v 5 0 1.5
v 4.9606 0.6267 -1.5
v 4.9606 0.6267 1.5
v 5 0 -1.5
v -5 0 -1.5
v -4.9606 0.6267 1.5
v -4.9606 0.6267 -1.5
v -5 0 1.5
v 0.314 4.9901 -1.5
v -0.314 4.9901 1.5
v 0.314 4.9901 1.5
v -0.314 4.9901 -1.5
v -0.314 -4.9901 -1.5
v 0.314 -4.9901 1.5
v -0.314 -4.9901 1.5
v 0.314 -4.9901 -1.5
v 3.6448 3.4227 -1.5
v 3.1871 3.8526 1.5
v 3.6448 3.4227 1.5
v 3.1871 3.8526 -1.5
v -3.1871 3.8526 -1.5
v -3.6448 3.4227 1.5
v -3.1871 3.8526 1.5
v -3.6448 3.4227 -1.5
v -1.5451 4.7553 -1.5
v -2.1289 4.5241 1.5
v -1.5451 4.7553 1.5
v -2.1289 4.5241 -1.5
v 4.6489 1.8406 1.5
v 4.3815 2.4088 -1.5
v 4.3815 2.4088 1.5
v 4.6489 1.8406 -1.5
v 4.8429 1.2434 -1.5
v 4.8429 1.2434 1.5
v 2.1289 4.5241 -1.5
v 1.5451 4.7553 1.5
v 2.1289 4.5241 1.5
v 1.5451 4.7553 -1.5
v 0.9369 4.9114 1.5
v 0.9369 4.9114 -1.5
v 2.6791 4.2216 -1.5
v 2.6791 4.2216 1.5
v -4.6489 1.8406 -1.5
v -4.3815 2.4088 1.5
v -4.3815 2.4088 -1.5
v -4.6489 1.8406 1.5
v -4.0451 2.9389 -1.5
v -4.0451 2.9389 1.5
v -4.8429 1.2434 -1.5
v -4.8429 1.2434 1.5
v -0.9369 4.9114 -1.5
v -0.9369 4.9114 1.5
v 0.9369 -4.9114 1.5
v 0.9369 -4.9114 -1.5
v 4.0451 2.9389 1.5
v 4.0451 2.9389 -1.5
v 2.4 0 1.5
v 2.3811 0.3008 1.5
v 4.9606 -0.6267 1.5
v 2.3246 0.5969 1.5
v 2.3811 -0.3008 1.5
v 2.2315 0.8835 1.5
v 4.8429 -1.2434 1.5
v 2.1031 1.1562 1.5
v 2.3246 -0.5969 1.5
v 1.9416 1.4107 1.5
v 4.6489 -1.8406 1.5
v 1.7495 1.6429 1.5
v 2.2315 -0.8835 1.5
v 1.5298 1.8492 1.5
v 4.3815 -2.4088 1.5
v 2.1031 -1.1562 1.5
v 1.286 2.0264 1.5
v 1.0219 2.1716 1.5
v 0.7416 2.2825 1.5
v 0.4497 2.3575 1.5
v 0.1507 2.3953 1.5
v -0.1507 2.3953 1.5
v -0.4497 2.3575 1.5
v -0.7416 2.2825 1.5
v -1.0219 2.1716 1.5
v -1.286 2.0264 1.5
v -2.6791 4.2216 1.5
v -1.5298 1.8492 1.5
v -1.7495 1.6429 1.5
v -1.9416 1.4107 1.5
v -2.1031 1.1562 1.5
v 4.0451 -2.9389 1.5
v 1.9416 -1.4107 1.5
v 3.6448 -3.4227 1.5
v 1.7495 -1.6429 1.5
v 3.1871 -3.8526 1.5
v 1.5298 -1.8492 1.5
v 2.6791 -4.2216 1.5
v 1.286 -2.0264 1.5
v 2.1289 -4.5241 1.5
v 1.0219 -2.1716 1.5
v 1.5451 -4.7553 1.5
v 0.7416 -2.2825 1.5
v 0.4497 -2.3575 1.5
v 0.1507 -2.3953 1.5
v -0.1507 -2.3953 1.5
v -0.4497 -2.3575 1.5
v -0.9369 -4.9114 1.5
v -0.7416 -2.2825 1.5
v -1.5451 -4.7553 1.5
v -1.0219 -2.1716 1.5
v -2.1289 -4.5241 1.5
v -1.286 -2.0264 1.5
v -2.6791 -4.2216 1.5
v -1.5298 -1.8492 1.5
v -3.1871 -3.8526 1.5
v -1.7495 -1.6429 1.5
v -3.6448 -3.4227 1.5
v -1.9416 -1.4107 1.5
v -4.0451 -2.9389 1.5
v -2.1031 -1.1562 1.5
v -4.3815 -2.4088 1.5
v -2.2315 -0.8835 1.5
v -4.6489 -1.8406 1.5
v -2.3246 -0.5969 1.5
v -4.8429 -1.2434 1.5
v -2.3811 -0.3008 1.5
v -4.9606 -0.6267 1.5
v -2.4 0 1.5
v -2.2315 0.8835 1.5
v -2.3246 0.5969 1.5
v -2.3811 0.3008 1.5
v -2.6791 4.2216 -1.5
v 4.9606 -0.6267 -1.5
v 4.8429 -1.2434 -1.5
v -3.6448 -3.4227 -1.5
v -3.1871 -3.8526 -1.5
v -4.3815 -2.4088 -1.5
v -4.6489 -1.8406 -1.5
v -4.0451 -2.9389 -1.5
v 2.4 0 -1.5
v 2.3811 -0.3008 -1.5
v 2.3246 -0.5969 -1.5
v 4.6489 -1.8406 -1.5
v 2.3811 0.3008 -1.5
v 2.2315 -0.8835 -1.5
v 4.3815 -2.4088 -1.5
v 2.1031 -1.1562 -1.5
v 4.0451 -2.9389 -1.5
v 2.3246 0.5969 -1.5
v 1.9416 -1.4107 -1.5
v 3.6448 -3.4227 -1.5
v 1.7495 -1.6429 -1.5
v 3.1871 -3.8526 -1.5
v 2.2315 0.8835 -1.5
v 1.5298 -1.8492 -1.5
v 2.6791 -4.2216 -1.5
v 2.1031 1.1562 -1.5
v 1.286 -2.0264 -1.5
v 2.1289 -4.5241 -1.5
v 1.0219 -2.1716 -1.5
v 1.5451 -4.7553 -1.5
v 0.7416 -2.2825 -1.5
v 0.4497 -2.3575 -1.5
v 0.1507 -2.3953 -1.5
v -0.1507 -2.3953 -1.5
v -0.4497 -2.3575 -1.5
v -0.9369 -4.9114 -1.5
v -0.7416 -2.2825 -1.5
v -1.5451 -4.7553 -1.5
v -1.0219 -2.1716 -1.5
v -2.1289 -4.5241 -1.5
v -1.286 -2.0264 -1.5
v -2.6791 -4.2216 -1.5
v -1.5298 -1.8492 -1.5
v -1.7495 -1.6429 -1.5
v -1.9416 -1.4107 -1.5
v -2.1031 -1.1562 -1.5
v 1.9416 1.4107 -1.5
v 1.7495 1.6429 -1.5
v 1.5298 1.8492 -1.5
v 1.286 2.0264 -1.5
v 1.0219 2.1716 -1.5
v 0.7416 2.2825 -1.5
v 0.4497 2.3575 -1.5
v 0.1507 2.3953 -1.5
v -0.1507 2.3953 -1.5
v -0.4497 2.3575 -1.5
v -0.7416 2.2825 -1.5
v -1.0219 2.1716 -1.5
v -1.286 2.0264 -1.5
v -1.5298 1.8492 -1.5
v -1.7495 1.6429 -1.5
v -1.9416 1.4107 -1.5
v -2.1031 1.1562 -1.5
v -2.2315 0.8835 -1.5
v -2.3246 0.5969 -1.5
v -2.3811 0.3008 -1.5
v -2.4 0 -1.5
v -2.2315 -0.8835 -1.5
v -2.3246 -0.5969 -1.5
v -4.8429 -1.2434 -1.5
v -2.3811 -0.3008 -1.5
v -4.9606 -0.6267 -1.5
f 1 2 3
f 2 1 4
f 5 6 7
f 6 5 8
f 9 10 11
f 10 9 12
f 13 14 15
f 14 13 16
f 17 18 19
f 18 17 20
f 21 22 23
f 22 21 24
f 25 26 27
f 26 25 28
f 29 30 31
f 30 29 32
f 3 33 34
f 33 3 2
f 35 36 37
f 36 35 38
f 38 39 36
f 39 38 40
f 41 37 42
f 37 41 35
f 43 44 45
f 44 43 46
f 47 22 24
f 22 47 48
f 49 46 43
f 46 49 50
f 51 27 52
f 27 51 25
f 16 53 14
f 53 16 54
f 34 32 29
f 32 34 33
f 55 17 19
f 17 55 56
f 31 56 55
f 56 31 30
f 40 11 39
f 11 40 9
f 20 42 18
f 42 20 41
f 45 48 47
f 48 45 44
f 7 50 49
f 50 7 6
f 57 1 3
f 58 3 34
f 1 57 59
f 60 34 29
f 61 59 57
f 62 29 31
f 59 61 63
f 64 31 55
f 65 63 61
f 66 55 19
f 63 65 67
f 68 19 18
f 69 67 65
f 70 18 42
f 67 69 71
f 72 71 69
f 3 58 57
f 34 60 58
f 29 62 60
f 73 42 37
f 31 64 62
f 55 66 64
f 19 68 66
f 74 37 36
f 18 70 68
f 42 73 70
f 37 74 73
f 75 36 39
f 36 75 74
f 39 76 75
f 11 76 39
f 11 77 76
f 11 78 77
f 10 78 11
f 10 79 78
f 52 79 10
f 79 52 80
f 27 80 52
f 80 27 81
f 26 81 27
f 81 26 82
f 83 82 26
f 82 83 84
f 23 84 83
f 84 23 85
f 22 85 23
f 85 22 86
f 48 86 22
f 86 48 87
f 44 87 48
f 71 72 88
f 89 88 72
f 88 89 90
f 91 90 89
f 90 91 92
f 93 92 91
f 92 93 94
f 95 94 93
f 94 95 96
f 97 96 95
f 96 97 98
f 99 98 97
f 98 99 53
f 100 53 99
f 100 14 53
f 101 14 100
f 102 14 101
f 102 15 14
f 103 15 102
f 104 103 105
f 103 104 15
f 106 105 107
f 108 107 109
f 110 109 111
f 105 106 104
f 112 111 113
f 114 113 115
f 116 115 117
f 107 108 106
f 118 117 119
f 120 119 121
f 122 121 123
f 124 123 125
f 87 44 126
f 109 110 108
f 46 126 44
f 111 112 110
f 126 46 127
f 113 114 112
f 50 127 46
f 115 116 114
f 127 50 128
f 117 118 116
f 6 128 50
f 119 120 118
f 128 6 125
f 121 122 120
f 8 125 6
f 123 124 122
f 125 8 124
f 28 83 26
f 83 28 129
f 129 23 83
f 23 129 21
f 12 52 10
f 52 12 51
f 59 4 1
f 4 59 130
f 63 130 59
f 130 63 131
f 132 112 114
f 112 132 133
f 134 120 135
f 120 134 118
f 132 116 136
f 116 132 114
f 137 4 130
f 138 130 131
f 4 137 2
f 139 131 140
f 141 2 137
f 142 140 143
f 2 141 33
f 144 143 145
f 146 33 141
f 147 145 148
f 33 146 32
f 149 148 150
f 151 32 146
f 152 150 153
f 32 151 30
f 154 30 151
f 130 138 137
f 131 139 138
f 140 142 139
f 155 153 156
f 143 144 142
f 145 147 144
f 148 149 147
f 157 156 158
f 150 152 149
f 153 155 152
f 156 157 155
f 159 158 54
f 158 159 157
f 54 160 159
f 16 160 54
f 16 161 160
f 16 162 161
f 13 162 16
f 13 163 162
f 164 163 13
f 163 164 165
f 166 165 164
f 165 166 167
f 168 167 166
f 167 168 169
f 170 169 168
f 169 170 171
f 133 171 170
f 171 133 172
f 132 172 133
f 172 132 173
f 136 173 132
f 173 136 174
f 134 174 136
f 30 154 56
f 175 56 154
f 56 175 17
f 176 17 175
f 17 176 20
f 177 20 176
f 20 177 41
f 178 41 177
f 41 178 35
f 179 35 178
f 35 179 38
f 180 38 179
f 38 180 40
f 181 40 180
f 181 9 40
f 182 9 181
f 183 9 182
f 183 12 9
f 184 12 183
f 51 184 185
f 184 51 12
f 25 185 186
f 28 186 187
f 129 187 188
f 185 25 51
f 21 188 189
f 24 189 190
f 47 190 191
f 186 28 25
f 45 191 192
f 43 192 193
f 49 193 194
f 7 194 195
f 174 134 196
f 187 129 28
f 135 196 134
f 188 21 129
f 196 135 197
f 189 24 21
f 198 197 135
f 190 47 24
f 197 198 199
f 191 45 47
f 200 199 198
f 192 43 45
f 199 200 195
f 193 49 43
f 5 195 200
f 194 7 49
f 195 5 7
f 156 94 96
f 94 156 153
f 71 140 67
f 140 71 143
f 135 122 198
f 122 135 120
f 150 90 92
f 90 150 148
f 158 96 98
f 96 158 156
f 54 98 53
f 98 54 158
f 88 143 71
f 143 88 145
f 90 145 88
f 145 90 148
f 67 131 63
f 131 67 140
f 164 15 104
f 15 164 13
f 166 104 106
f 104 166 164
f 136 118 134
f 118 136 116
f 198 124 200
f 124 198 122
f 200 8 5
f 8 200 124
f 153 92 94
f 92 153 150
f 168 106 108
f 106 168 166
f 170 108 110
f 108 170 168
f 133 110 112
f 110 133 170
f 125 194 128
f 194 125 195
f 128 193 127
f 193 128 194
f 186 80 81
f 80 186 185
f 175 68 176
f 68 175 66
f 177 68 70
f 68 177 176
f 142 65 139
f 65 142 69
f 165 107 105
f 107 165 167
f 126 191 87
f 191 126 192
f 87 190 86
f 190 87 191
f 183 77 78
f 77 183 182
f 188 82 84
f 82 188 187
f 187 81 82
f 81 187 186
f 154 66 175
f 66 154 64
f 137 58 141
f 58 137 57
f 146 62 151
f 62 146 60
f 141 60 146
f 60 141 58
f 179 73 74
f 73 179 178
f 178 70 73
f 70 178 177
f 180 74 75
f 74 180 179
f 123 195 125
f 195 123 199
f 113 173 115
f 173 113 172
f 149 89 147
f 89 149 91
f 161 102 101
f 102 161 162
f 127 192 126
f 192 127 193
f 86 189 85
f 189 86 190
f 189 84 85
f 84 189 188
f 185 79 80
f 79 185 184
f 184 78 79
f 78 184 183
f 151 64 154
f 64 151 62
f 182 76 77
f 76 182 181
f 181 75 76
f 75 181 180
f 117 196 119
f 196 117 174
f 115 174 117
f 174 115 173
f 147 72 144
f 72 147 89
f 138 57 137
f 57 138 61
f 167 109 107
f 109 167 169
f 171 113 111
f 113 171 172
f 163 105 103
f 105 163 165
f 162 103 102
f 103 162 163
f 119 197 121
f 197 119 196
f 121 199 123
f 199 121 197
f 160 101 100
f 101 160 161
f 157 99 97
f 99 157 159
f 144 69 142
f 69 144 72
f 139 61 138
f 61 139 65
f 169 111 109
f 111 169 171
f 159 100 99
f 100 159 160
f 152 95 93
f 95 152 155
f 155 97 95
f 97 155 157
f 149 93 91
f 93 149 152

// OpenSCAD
$fn = 50;


difference() {
	union() {
		translate(v = [0, 0, -1.5000000000]) {
			rotate(a = [0, 0, 0]) {
				cylinder(h = 3, r = 5.0000000000);
			}
		}
		translate(v = [0, 0, -1.5000000000]) {
			rotate(a = [0, 0, 0]) {
				cylinder(h = 3, r = 3.0000000000);
			}
		}
	}
	union() {
		translate(v = [0, 0, -125.0000000000]) {
			rotate(a = [0, 0, 0]) {
				cylinder(h = 250, r = 1.5000000000);
			}
		}
		#translate(v = [0, 0, 1.5000000000]) {
			rotate(a = [0, 180, 0]) {
				cylinder(h = 3, r1 = 2.4000000000, r2 = 2.4000000000);
			}
		}
		#translate(v = [0, 0, 1.5000000000]) {
			rotate(a = [0, 180, 0]) {
				cylinder(h = 3, r = 1.5000000000);
			}
		}
	}
}
